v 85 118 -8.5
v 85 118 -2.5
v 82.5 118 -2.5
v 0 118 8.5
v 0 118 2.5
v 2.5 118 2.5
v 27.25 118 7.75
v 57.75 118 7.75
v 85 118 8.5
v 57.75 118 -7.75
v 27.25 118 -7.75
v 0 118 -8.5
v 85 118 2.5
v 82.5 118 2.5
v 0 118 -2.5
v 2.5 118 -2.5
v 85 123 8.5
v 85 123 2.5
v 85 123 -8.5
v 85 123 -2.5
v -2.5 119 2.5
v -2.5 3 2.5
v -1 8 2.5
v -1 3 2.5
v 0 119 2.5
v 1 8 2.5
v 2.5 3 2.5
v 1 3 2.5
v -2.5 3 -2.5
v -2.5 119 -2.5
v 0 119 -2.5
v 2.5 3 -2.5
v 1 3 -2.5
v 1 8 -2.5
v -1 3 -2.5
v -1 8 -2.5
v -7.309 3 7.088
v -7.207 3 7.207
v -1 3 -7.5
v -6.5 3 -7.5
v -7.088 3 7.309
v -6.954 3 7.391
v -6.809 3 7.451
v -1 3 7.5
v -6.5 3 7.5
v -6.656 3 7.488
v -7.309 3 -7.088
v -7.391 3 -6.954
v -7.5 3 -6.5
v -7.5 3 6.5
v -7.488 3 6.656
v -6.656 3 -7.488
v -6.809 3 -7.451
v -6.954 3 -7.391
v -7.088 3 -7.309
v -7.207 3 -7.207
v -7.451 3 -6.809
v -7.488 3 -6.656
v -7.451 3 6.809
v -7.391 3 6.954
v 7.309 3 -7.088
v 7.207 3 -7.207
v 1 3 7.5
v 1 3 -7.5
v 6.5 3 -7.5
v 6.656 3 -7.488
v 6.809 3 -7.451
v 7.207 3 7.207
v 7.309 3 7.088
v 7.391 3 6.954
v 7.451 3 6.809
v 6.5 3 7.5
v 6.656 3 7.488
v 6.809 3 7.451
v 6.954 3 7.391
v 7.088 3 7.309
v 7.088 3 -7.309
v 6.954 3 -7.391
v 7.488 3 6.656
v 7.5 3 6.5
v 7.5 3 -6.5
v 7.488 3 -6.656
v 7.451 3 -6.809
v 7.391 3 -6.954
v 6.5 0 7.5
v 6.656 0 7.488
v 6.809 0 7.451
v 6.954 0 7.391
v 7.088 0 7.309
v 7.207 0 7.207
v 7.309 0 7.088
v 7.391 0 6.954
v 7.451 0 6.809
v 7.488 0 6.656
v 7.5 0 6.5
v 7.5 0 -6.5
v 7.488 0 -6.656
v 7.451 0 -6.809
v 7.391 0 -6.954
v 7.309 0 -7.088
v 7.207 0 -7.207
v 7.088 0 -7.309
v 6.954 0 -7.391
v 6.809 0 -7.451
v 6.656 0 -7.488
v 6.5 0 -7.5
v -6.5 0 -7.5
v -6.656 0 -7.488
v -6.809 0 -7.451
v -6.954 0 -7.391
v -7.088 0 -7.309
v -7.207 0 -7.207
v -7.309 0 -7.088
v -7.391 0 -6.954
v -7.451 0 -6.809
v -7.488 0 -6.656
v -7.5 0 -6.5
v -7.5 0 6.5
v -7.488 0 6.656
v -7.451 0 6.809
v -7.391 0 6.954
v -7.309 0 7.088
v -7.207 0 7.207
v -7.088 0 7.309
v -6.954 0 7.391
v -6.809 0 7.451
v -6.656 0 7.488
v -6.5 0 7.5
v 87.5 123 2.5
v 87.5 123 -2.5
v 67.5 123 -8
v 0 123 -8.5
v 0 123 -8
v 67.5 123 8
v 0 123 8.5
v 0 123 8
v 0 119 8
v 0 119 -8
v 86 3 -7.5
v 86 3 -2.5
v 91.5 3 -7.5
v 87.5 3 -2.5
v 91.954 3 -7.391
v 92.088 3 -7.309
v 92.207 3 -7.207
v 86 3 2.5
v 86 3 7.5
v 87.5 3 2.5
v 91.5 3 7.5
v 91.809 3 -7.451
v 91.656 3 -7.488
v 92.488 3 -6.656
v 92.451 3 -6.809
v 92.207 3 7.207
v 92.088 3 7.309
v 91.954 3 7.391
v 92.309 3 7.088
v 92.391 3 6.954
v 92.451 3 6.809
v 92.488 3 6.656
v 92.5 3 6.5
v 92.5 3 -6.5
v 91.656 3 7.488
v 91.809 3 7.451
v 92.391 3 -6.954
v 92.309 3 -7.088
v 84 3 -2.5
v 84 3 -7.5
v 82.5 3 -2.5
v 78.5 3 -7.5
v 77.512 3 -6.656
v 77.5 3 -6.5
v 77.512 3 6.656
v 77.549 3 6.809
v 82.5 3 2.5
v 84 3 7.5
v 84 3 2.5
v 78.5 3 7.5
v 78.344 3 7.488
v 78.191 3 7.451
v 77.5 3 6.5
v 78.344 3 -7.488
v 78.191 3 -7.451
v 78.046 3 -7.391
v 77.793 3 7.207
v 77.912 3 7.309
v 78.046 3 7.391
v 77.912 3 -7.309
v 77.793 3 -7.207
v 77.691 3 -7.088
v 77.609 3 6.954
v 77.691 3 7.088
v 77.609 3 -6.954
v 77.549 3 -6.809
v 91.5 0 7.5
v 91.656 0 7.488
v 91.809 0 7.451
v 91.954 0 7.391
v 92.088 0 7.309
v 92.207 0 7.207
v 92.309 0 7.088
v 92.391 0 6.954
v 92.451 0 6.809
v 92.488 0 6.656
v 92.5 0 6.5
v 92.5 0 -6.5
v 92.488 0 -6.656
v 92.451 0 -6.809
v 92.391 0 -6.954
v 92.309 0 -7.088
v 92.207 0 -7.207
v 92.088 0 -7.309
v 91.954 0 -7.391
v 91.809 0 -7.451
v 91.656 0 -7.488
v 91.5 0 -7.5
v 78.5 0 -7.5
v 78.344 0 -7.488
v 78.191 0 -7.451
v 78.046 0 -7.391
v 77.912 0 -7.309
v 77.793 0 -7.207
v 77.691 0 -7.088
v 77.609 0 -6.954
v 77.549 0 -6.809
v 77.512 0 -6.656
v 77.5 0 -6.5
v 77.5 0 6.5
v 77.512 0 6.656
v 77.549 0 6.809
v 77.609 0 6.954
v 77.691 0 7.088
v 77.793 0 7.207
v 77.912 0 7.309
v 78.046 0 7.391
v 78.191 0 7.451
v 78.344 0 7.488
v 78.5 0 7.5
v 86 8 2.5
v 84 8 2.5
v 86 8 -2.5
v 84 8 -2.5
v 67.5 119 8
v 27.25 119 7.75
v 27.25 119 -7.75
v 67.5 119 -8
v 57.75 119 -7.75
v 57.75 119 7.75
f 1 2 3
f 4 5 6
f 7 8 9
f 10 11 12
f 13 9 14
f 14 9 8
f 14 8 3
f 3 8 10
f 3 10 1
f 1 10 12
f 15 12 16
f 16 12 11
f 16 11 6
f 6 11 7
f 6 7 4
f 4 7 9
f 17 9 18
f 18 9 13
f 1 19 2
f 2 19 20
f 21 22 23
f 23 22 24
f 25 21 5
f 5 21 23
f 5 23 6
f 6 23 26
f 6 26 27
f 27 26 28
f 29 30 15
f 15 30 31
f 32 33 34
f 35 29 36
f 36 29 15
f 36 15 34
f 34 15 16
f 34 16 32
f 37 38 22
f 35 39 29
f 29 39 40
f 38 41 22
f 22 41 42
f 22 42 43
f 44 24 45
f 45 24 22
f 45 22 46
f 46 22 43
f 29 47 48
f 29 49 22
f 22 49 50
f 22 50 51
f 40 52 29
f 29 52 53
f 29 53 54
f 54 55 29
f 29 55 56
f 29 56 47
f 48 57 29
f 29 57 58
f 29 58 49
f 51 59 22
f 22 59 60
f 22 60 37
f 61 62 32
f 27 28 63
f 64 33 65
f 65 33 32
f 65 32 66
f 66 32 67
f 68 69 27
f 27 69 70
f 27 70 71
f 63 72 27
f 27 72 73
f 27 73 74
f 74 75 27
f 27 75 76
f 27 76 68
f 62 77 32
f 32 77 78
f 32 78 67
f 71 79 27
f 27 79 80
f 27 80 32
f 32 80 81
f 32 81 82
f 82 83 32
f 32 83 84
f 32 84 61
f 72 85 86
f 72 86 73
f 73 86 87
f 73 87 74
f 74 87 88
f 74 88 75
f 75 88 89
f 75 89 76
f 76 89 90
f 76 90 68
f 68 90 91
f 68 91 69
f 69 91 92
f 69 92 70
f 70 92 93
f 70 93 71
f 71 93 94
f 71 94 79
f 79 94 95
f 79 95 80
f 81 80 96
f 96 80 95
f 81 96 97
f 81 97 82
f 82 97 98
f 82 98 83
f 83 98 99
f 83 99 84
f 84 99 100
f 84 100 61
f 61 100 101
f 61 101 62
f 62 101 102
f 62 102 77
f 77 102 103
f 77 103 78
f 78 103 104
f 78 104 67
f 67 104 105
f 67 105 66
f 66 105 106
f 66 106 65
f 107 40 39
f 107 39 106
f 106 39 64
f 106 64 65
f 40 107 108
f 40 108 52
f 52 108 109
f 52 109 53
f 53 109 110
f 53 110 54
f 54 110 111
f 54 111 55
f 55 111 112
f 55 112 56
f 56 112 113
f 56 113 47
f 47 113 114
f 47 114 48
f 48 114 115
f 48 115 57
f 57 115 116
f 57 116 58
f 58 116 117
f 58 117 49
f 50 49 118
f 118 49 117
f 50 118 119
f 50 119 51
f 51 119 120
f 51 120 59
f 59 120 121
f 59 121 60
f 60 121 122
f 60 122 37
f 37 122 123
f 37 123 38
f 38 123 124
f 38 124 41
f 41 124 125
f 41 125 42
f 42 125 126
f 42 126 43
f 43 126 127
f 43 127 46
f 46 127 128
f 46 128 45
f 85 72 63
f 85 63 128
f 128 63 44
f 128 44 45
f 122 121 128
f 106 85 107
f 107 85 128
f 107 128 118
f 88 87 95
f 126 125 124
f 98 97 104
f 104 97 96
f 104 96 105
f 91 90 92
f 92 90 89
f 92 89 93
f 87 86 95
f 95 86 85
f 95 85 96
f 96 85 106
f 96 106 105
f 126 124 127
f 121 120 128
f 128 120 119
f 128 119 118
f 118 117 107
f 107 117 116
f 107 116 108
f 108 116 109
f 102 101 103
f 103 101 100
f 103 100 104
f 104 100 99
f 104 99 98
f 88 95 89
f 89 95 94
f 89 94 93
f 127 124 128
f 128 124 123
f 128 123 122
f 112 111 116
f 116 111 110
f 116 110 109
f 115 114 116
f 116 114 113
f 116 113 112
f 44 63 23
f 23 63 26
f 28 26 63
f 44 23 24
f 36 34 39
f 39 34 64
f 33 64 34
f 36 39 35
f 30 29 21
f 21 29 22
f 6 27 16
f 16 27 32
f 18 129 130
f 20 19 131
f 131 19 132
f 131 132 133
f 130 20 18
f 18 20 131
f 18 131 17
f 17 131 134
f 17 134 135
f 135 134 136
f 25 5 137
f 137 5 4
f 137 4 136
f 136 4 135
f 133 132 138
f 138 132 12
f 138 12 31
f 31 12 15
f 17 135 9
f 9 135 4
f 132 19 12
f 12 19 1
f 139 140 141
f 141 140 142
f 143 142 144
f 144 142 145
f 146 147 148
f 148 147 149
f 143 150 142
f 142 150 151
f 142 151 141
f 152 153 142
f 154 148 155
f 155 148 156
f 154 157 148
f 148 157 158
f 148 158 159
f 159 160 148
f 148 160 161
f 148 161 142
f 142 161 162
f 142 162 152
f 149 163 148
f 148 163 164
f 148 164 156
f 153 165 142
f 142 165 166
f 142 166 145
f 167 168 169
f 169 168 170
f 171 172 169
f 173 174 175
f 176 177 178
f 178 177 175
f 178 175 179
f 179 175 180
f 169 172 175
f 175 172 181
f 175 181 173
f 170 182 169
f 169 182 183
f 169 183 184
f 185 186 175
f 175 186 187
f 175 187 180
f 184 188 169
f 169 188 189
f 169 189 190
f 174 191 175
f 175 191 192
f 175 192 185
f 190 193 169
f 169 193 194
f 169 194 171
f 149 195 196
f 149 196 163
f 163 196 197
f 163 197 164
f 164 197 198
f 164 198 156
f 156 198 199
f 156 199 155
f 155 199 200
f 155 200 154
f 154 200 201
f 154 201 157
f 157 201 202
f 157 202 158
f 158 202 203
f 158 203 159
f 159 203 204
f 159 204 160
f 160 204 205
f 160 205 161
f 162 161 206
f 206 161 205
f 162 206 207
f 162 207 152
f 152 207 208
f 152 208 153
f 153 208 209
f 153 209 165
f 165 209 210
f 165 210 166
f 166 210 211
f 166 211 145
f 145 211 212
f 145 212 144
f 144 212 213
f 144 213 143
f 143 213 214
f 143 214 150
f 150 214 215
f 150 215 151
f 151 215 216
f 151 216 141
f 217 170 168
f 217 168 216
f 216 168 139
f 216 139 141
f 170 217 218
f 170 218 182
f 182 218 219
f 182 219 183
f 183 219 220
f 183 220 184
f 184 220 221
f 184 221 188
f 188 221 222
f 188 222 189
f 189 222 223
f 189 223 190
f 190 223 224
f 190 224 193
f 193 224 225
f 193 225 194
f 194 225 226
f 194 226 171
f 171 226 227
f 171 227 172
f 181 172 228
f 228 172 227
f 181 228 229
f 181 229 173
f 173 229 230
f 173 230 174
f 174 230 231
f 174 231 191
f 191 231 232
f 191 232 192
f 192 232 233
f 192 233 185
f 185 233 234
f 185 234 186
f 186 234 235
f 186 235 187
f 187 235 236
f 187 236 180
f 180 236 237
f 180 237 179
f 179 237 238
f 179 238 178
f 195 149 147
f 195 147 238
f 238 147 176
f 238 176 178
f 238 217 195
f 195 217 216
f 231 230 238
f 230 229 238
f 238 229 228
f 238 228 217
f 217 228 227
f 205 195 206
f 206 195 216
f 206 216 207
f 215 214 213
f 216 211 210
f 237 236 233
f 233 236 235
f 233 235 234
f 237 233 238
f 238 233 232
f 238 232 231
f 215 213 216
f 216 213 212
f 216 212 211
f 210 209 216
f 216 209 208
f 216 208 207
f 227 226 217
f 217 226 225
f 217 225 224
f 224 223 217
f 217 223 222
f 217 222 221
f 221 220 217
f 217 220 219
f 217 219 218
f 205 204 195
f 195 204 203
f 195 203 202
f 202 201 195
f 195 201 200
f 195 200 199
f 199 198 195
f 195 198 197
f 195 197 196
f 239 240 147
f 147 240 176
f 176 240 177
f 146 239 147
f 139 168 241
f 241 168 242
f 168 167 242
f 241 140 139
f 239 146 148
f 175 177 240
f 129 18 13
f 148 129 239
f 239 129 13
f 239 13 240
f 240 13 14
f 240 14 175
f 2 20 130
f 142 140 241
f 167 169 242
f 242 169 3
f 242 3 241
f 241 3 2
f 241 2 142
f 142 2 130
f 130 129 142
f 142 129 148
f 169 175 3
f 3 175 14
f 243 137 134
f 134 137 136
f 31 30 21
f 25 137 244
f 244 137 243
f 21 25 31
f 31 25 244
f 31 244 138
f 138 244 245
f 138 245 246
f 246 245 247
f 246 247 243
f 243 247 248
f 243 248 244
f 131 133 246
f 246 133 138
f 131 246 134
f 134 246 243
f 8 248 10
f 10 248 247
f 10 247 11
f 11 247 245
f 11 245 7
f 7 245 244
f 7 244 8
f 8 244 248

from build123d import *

# Parameters (mm, degrees)
SALIENTE_EXTRUIR1_DEPTH      = 3
SALIENTE_EXTRUIR1_2_DEPTH    = 3
SALIENTE_EXTRUIR2_DEPTH      = 1
SALIENTE_EXTRUIR2_DEPTH_BACK = 1
CROQUIS3_W                   = 5
CROQUIS3_H                   = 5
SALIENTE_EXTRUIR3_DEPTH      = 120
SALIENTE_EXTRUIR4_DEPTH      = 1
SALIENTE_EXTRUIR4_DEPTH_BACK = 1
CROQUIS7_W                   = 5
CROQUIS7_H                   = 5
SALIENTE_EXTRUIR6_DEPTH      = 120
CROQUIS8_W                   = 85
CROQUIS8_H                   = 17
SALIENTE_EXTRUIR7_DEPTH      = 5
CROQUIS9_W                   = 16
CROQUIS9_H                   = 4
CORTAR_EXTRUIR1_DEPTH        = 70
CROQUIS10_W                  = 30.5
CROQUIS10_H                  = 15.5
CORTAR_EXTRUIR2_DEPTH        = 2


with BuildPart() as part:
    # Croquis1 → Saliente-Extruir1 (new body)
    with BuildSketch(Plane(origin=(0, 0, 0), x_dir=(1, 0, 0), z_dir=(0, 1, 0))):
        with BuildLine():
            Line((-6.5, -7.5), (6.5, -7.5))
            ThreePointArc((6.5, -7.5), (7.207106781, -7.207106781), (7.5, -6.5))
            Line((7.5, -6.5), (7.5, 6.5))
            ThreePointArc((7.5, 6.5), (7.207106781, 7.207106781), (6.5, 7.5))
            Line((6.5, 7.5), (-6.5, 7.5))
            ThreePointArc((-6.5, 7.5), (-7.207106781, 7.207106781), (-7.5, 6.5))
            Line((-7.5, 6.5), (-7.5, -6.5))
            ThreePointArc((-7.5, -6.5), (-7.207106781, -7.207106781), (-6.5, -7.5))
        make_face()
    extrude(amount=SALIENTE_EXTRUIR1_DEPTH)

    # Croquis2 → Saliente-Extruir2 (add, two sides: drawn at the far end of the back side and taken through both)
    with BuildSketch(Plane(origin=(0, 0, 0), x_dir=(0, 0, -1), z_dir=(1, 0, 0)).offset(-SALIENTE_EXTRUIR2_DEPTH_BACK)):
        Polygon((-7.5, 3), (-2.5, 8), (-2.5, 3), align=None)
        Polygon((2.5, 3), (7.5, 3), (2.5, 8), align=None)
    extrude(amount=SALIENTE_EXTRUIR2_DEPTH + SALIENTE_EXTRUIR2_DEPTH_BACK)

    # Croquis3 → Saliente-Extruir3 (add)
    with BuildSketch(Plane(origin=(0, 3, 0), x_dir=(1, 0, 0), z_dir=(0, 1, 0))):
        Rectangle(CROQUIS3_W, CROQUIS3_H)
    extrude(amount=SALIENTE_EXTRUIR3_DEPTH)



with BuildPart() as body_2:
    # Croquis1 → Saliente-Extruir1 2 (new body)
    with BuildSketch(Plane(origin=(0, 0, 0), x_dir=(1, 0, 0), z_dir=(0, 1, 0))):
        with BuildLine():
            Line((77.5, -6.5), (77.5, 6.5))
            ThreePointArc((77.5, 6.5), (77.792893219, 7.207106781), (78.5, 7.5))
            Line((78.5, 7.5), (91.5, 7.5))
            ThreePointArc((91.5, 7.5), (92.207106781, 7.207106781), (92.5, 6.5))
            Line((92.5, 6.5), (92.5, -6.5))
            ThreePointArc((92.5, -6.5), (92.207106781, -7.207106781), (91.5, -7.5))
            Line((91.5, -7.5), (78.5, -7.5))
            ThreePointArc((78.5, -7.5), (77.792893219, -7.207106781), (77.5, -6.5))
        make_face()
    extrude(amount=SALIENTE_EXTRUIR1_2_DEPTH)

    # Croquis5 → Saliente-Extruir4 (add, two sides: drawn at the far end of the back side and taken through both)
    with BuildSketch(Plane(origin=(85, 0, 0), x_dir=(0, 0, -1), z_dir=(1, 0, 0)).offset(-SALIENTE_EXTRUIR4_DEPTH_BACK)):
        Polygon((-7.5, 3), (-2.5, 8), (-2.5, 3), align=None)
        Polygon((2.5, 8), (2.5, 3), (7.5, 3), align=None)
    extrude(amount=SALIENTE_EXTRUIR4_DEPTH + SALIENTE_EXTRUIR4_DEPTH_BACK)

    # Croquis7 → Saliente-Extruir6 (add)
    with BuildSketch(Plane(origin=(0, 3, 0), x_dir=(1, 0, 0), z_dir=(0, 1, 0))):
        with Locations((85, 0)):
            Rectangle(CROQUIS7_W, CROQUIS7_H)
    extrude(amount=SALIENTE_EXTRUIR6_DEPTH)


with BuildPart() as part_1:
    add(part.part)

    add(body_2.part)  # Saliente-Extruir7 merges body 2
    # Croquis8 → Saliente-Extruir7 (add)
    with BuildSketch(Plane(origin=(0, 118, 0), x_dir=(1, 0, 0), z_dir=(0, 1, 0))):
        with Locations((42.5, 0)):
            Rectangle(CROQUIS8_W, CROQUIS8_H)
    extrude(amount=SALIENTE_EXTRUIR7_DEPTH)

    # Croquis9 → Cortar-Extruir1 (cut)
    with BuildSketch(Plane.ZY.offset(2.5)):
        with Locations((0, 121)):
            Rectangle(CROQUIS9_W, CROQUIS9_H)
    extrude(amount=-CORTAR_EXTRUIR1_DEPTH, mode=Mode.SUBTRACT)

    # Croquis10 → Cortar-Extruir2 (cut)
    with BuildSketch(Plane.XZ.offset(-118)):
        with Locations((42.5, 0)):
            Rectangle(CROQUIS10_W, CROQUIS10_H)
    extrude(amount=-CORTAR_EXTRUIR2_DEPTH, mode=Mode.SUBTRACT)


solid = part_1.part
